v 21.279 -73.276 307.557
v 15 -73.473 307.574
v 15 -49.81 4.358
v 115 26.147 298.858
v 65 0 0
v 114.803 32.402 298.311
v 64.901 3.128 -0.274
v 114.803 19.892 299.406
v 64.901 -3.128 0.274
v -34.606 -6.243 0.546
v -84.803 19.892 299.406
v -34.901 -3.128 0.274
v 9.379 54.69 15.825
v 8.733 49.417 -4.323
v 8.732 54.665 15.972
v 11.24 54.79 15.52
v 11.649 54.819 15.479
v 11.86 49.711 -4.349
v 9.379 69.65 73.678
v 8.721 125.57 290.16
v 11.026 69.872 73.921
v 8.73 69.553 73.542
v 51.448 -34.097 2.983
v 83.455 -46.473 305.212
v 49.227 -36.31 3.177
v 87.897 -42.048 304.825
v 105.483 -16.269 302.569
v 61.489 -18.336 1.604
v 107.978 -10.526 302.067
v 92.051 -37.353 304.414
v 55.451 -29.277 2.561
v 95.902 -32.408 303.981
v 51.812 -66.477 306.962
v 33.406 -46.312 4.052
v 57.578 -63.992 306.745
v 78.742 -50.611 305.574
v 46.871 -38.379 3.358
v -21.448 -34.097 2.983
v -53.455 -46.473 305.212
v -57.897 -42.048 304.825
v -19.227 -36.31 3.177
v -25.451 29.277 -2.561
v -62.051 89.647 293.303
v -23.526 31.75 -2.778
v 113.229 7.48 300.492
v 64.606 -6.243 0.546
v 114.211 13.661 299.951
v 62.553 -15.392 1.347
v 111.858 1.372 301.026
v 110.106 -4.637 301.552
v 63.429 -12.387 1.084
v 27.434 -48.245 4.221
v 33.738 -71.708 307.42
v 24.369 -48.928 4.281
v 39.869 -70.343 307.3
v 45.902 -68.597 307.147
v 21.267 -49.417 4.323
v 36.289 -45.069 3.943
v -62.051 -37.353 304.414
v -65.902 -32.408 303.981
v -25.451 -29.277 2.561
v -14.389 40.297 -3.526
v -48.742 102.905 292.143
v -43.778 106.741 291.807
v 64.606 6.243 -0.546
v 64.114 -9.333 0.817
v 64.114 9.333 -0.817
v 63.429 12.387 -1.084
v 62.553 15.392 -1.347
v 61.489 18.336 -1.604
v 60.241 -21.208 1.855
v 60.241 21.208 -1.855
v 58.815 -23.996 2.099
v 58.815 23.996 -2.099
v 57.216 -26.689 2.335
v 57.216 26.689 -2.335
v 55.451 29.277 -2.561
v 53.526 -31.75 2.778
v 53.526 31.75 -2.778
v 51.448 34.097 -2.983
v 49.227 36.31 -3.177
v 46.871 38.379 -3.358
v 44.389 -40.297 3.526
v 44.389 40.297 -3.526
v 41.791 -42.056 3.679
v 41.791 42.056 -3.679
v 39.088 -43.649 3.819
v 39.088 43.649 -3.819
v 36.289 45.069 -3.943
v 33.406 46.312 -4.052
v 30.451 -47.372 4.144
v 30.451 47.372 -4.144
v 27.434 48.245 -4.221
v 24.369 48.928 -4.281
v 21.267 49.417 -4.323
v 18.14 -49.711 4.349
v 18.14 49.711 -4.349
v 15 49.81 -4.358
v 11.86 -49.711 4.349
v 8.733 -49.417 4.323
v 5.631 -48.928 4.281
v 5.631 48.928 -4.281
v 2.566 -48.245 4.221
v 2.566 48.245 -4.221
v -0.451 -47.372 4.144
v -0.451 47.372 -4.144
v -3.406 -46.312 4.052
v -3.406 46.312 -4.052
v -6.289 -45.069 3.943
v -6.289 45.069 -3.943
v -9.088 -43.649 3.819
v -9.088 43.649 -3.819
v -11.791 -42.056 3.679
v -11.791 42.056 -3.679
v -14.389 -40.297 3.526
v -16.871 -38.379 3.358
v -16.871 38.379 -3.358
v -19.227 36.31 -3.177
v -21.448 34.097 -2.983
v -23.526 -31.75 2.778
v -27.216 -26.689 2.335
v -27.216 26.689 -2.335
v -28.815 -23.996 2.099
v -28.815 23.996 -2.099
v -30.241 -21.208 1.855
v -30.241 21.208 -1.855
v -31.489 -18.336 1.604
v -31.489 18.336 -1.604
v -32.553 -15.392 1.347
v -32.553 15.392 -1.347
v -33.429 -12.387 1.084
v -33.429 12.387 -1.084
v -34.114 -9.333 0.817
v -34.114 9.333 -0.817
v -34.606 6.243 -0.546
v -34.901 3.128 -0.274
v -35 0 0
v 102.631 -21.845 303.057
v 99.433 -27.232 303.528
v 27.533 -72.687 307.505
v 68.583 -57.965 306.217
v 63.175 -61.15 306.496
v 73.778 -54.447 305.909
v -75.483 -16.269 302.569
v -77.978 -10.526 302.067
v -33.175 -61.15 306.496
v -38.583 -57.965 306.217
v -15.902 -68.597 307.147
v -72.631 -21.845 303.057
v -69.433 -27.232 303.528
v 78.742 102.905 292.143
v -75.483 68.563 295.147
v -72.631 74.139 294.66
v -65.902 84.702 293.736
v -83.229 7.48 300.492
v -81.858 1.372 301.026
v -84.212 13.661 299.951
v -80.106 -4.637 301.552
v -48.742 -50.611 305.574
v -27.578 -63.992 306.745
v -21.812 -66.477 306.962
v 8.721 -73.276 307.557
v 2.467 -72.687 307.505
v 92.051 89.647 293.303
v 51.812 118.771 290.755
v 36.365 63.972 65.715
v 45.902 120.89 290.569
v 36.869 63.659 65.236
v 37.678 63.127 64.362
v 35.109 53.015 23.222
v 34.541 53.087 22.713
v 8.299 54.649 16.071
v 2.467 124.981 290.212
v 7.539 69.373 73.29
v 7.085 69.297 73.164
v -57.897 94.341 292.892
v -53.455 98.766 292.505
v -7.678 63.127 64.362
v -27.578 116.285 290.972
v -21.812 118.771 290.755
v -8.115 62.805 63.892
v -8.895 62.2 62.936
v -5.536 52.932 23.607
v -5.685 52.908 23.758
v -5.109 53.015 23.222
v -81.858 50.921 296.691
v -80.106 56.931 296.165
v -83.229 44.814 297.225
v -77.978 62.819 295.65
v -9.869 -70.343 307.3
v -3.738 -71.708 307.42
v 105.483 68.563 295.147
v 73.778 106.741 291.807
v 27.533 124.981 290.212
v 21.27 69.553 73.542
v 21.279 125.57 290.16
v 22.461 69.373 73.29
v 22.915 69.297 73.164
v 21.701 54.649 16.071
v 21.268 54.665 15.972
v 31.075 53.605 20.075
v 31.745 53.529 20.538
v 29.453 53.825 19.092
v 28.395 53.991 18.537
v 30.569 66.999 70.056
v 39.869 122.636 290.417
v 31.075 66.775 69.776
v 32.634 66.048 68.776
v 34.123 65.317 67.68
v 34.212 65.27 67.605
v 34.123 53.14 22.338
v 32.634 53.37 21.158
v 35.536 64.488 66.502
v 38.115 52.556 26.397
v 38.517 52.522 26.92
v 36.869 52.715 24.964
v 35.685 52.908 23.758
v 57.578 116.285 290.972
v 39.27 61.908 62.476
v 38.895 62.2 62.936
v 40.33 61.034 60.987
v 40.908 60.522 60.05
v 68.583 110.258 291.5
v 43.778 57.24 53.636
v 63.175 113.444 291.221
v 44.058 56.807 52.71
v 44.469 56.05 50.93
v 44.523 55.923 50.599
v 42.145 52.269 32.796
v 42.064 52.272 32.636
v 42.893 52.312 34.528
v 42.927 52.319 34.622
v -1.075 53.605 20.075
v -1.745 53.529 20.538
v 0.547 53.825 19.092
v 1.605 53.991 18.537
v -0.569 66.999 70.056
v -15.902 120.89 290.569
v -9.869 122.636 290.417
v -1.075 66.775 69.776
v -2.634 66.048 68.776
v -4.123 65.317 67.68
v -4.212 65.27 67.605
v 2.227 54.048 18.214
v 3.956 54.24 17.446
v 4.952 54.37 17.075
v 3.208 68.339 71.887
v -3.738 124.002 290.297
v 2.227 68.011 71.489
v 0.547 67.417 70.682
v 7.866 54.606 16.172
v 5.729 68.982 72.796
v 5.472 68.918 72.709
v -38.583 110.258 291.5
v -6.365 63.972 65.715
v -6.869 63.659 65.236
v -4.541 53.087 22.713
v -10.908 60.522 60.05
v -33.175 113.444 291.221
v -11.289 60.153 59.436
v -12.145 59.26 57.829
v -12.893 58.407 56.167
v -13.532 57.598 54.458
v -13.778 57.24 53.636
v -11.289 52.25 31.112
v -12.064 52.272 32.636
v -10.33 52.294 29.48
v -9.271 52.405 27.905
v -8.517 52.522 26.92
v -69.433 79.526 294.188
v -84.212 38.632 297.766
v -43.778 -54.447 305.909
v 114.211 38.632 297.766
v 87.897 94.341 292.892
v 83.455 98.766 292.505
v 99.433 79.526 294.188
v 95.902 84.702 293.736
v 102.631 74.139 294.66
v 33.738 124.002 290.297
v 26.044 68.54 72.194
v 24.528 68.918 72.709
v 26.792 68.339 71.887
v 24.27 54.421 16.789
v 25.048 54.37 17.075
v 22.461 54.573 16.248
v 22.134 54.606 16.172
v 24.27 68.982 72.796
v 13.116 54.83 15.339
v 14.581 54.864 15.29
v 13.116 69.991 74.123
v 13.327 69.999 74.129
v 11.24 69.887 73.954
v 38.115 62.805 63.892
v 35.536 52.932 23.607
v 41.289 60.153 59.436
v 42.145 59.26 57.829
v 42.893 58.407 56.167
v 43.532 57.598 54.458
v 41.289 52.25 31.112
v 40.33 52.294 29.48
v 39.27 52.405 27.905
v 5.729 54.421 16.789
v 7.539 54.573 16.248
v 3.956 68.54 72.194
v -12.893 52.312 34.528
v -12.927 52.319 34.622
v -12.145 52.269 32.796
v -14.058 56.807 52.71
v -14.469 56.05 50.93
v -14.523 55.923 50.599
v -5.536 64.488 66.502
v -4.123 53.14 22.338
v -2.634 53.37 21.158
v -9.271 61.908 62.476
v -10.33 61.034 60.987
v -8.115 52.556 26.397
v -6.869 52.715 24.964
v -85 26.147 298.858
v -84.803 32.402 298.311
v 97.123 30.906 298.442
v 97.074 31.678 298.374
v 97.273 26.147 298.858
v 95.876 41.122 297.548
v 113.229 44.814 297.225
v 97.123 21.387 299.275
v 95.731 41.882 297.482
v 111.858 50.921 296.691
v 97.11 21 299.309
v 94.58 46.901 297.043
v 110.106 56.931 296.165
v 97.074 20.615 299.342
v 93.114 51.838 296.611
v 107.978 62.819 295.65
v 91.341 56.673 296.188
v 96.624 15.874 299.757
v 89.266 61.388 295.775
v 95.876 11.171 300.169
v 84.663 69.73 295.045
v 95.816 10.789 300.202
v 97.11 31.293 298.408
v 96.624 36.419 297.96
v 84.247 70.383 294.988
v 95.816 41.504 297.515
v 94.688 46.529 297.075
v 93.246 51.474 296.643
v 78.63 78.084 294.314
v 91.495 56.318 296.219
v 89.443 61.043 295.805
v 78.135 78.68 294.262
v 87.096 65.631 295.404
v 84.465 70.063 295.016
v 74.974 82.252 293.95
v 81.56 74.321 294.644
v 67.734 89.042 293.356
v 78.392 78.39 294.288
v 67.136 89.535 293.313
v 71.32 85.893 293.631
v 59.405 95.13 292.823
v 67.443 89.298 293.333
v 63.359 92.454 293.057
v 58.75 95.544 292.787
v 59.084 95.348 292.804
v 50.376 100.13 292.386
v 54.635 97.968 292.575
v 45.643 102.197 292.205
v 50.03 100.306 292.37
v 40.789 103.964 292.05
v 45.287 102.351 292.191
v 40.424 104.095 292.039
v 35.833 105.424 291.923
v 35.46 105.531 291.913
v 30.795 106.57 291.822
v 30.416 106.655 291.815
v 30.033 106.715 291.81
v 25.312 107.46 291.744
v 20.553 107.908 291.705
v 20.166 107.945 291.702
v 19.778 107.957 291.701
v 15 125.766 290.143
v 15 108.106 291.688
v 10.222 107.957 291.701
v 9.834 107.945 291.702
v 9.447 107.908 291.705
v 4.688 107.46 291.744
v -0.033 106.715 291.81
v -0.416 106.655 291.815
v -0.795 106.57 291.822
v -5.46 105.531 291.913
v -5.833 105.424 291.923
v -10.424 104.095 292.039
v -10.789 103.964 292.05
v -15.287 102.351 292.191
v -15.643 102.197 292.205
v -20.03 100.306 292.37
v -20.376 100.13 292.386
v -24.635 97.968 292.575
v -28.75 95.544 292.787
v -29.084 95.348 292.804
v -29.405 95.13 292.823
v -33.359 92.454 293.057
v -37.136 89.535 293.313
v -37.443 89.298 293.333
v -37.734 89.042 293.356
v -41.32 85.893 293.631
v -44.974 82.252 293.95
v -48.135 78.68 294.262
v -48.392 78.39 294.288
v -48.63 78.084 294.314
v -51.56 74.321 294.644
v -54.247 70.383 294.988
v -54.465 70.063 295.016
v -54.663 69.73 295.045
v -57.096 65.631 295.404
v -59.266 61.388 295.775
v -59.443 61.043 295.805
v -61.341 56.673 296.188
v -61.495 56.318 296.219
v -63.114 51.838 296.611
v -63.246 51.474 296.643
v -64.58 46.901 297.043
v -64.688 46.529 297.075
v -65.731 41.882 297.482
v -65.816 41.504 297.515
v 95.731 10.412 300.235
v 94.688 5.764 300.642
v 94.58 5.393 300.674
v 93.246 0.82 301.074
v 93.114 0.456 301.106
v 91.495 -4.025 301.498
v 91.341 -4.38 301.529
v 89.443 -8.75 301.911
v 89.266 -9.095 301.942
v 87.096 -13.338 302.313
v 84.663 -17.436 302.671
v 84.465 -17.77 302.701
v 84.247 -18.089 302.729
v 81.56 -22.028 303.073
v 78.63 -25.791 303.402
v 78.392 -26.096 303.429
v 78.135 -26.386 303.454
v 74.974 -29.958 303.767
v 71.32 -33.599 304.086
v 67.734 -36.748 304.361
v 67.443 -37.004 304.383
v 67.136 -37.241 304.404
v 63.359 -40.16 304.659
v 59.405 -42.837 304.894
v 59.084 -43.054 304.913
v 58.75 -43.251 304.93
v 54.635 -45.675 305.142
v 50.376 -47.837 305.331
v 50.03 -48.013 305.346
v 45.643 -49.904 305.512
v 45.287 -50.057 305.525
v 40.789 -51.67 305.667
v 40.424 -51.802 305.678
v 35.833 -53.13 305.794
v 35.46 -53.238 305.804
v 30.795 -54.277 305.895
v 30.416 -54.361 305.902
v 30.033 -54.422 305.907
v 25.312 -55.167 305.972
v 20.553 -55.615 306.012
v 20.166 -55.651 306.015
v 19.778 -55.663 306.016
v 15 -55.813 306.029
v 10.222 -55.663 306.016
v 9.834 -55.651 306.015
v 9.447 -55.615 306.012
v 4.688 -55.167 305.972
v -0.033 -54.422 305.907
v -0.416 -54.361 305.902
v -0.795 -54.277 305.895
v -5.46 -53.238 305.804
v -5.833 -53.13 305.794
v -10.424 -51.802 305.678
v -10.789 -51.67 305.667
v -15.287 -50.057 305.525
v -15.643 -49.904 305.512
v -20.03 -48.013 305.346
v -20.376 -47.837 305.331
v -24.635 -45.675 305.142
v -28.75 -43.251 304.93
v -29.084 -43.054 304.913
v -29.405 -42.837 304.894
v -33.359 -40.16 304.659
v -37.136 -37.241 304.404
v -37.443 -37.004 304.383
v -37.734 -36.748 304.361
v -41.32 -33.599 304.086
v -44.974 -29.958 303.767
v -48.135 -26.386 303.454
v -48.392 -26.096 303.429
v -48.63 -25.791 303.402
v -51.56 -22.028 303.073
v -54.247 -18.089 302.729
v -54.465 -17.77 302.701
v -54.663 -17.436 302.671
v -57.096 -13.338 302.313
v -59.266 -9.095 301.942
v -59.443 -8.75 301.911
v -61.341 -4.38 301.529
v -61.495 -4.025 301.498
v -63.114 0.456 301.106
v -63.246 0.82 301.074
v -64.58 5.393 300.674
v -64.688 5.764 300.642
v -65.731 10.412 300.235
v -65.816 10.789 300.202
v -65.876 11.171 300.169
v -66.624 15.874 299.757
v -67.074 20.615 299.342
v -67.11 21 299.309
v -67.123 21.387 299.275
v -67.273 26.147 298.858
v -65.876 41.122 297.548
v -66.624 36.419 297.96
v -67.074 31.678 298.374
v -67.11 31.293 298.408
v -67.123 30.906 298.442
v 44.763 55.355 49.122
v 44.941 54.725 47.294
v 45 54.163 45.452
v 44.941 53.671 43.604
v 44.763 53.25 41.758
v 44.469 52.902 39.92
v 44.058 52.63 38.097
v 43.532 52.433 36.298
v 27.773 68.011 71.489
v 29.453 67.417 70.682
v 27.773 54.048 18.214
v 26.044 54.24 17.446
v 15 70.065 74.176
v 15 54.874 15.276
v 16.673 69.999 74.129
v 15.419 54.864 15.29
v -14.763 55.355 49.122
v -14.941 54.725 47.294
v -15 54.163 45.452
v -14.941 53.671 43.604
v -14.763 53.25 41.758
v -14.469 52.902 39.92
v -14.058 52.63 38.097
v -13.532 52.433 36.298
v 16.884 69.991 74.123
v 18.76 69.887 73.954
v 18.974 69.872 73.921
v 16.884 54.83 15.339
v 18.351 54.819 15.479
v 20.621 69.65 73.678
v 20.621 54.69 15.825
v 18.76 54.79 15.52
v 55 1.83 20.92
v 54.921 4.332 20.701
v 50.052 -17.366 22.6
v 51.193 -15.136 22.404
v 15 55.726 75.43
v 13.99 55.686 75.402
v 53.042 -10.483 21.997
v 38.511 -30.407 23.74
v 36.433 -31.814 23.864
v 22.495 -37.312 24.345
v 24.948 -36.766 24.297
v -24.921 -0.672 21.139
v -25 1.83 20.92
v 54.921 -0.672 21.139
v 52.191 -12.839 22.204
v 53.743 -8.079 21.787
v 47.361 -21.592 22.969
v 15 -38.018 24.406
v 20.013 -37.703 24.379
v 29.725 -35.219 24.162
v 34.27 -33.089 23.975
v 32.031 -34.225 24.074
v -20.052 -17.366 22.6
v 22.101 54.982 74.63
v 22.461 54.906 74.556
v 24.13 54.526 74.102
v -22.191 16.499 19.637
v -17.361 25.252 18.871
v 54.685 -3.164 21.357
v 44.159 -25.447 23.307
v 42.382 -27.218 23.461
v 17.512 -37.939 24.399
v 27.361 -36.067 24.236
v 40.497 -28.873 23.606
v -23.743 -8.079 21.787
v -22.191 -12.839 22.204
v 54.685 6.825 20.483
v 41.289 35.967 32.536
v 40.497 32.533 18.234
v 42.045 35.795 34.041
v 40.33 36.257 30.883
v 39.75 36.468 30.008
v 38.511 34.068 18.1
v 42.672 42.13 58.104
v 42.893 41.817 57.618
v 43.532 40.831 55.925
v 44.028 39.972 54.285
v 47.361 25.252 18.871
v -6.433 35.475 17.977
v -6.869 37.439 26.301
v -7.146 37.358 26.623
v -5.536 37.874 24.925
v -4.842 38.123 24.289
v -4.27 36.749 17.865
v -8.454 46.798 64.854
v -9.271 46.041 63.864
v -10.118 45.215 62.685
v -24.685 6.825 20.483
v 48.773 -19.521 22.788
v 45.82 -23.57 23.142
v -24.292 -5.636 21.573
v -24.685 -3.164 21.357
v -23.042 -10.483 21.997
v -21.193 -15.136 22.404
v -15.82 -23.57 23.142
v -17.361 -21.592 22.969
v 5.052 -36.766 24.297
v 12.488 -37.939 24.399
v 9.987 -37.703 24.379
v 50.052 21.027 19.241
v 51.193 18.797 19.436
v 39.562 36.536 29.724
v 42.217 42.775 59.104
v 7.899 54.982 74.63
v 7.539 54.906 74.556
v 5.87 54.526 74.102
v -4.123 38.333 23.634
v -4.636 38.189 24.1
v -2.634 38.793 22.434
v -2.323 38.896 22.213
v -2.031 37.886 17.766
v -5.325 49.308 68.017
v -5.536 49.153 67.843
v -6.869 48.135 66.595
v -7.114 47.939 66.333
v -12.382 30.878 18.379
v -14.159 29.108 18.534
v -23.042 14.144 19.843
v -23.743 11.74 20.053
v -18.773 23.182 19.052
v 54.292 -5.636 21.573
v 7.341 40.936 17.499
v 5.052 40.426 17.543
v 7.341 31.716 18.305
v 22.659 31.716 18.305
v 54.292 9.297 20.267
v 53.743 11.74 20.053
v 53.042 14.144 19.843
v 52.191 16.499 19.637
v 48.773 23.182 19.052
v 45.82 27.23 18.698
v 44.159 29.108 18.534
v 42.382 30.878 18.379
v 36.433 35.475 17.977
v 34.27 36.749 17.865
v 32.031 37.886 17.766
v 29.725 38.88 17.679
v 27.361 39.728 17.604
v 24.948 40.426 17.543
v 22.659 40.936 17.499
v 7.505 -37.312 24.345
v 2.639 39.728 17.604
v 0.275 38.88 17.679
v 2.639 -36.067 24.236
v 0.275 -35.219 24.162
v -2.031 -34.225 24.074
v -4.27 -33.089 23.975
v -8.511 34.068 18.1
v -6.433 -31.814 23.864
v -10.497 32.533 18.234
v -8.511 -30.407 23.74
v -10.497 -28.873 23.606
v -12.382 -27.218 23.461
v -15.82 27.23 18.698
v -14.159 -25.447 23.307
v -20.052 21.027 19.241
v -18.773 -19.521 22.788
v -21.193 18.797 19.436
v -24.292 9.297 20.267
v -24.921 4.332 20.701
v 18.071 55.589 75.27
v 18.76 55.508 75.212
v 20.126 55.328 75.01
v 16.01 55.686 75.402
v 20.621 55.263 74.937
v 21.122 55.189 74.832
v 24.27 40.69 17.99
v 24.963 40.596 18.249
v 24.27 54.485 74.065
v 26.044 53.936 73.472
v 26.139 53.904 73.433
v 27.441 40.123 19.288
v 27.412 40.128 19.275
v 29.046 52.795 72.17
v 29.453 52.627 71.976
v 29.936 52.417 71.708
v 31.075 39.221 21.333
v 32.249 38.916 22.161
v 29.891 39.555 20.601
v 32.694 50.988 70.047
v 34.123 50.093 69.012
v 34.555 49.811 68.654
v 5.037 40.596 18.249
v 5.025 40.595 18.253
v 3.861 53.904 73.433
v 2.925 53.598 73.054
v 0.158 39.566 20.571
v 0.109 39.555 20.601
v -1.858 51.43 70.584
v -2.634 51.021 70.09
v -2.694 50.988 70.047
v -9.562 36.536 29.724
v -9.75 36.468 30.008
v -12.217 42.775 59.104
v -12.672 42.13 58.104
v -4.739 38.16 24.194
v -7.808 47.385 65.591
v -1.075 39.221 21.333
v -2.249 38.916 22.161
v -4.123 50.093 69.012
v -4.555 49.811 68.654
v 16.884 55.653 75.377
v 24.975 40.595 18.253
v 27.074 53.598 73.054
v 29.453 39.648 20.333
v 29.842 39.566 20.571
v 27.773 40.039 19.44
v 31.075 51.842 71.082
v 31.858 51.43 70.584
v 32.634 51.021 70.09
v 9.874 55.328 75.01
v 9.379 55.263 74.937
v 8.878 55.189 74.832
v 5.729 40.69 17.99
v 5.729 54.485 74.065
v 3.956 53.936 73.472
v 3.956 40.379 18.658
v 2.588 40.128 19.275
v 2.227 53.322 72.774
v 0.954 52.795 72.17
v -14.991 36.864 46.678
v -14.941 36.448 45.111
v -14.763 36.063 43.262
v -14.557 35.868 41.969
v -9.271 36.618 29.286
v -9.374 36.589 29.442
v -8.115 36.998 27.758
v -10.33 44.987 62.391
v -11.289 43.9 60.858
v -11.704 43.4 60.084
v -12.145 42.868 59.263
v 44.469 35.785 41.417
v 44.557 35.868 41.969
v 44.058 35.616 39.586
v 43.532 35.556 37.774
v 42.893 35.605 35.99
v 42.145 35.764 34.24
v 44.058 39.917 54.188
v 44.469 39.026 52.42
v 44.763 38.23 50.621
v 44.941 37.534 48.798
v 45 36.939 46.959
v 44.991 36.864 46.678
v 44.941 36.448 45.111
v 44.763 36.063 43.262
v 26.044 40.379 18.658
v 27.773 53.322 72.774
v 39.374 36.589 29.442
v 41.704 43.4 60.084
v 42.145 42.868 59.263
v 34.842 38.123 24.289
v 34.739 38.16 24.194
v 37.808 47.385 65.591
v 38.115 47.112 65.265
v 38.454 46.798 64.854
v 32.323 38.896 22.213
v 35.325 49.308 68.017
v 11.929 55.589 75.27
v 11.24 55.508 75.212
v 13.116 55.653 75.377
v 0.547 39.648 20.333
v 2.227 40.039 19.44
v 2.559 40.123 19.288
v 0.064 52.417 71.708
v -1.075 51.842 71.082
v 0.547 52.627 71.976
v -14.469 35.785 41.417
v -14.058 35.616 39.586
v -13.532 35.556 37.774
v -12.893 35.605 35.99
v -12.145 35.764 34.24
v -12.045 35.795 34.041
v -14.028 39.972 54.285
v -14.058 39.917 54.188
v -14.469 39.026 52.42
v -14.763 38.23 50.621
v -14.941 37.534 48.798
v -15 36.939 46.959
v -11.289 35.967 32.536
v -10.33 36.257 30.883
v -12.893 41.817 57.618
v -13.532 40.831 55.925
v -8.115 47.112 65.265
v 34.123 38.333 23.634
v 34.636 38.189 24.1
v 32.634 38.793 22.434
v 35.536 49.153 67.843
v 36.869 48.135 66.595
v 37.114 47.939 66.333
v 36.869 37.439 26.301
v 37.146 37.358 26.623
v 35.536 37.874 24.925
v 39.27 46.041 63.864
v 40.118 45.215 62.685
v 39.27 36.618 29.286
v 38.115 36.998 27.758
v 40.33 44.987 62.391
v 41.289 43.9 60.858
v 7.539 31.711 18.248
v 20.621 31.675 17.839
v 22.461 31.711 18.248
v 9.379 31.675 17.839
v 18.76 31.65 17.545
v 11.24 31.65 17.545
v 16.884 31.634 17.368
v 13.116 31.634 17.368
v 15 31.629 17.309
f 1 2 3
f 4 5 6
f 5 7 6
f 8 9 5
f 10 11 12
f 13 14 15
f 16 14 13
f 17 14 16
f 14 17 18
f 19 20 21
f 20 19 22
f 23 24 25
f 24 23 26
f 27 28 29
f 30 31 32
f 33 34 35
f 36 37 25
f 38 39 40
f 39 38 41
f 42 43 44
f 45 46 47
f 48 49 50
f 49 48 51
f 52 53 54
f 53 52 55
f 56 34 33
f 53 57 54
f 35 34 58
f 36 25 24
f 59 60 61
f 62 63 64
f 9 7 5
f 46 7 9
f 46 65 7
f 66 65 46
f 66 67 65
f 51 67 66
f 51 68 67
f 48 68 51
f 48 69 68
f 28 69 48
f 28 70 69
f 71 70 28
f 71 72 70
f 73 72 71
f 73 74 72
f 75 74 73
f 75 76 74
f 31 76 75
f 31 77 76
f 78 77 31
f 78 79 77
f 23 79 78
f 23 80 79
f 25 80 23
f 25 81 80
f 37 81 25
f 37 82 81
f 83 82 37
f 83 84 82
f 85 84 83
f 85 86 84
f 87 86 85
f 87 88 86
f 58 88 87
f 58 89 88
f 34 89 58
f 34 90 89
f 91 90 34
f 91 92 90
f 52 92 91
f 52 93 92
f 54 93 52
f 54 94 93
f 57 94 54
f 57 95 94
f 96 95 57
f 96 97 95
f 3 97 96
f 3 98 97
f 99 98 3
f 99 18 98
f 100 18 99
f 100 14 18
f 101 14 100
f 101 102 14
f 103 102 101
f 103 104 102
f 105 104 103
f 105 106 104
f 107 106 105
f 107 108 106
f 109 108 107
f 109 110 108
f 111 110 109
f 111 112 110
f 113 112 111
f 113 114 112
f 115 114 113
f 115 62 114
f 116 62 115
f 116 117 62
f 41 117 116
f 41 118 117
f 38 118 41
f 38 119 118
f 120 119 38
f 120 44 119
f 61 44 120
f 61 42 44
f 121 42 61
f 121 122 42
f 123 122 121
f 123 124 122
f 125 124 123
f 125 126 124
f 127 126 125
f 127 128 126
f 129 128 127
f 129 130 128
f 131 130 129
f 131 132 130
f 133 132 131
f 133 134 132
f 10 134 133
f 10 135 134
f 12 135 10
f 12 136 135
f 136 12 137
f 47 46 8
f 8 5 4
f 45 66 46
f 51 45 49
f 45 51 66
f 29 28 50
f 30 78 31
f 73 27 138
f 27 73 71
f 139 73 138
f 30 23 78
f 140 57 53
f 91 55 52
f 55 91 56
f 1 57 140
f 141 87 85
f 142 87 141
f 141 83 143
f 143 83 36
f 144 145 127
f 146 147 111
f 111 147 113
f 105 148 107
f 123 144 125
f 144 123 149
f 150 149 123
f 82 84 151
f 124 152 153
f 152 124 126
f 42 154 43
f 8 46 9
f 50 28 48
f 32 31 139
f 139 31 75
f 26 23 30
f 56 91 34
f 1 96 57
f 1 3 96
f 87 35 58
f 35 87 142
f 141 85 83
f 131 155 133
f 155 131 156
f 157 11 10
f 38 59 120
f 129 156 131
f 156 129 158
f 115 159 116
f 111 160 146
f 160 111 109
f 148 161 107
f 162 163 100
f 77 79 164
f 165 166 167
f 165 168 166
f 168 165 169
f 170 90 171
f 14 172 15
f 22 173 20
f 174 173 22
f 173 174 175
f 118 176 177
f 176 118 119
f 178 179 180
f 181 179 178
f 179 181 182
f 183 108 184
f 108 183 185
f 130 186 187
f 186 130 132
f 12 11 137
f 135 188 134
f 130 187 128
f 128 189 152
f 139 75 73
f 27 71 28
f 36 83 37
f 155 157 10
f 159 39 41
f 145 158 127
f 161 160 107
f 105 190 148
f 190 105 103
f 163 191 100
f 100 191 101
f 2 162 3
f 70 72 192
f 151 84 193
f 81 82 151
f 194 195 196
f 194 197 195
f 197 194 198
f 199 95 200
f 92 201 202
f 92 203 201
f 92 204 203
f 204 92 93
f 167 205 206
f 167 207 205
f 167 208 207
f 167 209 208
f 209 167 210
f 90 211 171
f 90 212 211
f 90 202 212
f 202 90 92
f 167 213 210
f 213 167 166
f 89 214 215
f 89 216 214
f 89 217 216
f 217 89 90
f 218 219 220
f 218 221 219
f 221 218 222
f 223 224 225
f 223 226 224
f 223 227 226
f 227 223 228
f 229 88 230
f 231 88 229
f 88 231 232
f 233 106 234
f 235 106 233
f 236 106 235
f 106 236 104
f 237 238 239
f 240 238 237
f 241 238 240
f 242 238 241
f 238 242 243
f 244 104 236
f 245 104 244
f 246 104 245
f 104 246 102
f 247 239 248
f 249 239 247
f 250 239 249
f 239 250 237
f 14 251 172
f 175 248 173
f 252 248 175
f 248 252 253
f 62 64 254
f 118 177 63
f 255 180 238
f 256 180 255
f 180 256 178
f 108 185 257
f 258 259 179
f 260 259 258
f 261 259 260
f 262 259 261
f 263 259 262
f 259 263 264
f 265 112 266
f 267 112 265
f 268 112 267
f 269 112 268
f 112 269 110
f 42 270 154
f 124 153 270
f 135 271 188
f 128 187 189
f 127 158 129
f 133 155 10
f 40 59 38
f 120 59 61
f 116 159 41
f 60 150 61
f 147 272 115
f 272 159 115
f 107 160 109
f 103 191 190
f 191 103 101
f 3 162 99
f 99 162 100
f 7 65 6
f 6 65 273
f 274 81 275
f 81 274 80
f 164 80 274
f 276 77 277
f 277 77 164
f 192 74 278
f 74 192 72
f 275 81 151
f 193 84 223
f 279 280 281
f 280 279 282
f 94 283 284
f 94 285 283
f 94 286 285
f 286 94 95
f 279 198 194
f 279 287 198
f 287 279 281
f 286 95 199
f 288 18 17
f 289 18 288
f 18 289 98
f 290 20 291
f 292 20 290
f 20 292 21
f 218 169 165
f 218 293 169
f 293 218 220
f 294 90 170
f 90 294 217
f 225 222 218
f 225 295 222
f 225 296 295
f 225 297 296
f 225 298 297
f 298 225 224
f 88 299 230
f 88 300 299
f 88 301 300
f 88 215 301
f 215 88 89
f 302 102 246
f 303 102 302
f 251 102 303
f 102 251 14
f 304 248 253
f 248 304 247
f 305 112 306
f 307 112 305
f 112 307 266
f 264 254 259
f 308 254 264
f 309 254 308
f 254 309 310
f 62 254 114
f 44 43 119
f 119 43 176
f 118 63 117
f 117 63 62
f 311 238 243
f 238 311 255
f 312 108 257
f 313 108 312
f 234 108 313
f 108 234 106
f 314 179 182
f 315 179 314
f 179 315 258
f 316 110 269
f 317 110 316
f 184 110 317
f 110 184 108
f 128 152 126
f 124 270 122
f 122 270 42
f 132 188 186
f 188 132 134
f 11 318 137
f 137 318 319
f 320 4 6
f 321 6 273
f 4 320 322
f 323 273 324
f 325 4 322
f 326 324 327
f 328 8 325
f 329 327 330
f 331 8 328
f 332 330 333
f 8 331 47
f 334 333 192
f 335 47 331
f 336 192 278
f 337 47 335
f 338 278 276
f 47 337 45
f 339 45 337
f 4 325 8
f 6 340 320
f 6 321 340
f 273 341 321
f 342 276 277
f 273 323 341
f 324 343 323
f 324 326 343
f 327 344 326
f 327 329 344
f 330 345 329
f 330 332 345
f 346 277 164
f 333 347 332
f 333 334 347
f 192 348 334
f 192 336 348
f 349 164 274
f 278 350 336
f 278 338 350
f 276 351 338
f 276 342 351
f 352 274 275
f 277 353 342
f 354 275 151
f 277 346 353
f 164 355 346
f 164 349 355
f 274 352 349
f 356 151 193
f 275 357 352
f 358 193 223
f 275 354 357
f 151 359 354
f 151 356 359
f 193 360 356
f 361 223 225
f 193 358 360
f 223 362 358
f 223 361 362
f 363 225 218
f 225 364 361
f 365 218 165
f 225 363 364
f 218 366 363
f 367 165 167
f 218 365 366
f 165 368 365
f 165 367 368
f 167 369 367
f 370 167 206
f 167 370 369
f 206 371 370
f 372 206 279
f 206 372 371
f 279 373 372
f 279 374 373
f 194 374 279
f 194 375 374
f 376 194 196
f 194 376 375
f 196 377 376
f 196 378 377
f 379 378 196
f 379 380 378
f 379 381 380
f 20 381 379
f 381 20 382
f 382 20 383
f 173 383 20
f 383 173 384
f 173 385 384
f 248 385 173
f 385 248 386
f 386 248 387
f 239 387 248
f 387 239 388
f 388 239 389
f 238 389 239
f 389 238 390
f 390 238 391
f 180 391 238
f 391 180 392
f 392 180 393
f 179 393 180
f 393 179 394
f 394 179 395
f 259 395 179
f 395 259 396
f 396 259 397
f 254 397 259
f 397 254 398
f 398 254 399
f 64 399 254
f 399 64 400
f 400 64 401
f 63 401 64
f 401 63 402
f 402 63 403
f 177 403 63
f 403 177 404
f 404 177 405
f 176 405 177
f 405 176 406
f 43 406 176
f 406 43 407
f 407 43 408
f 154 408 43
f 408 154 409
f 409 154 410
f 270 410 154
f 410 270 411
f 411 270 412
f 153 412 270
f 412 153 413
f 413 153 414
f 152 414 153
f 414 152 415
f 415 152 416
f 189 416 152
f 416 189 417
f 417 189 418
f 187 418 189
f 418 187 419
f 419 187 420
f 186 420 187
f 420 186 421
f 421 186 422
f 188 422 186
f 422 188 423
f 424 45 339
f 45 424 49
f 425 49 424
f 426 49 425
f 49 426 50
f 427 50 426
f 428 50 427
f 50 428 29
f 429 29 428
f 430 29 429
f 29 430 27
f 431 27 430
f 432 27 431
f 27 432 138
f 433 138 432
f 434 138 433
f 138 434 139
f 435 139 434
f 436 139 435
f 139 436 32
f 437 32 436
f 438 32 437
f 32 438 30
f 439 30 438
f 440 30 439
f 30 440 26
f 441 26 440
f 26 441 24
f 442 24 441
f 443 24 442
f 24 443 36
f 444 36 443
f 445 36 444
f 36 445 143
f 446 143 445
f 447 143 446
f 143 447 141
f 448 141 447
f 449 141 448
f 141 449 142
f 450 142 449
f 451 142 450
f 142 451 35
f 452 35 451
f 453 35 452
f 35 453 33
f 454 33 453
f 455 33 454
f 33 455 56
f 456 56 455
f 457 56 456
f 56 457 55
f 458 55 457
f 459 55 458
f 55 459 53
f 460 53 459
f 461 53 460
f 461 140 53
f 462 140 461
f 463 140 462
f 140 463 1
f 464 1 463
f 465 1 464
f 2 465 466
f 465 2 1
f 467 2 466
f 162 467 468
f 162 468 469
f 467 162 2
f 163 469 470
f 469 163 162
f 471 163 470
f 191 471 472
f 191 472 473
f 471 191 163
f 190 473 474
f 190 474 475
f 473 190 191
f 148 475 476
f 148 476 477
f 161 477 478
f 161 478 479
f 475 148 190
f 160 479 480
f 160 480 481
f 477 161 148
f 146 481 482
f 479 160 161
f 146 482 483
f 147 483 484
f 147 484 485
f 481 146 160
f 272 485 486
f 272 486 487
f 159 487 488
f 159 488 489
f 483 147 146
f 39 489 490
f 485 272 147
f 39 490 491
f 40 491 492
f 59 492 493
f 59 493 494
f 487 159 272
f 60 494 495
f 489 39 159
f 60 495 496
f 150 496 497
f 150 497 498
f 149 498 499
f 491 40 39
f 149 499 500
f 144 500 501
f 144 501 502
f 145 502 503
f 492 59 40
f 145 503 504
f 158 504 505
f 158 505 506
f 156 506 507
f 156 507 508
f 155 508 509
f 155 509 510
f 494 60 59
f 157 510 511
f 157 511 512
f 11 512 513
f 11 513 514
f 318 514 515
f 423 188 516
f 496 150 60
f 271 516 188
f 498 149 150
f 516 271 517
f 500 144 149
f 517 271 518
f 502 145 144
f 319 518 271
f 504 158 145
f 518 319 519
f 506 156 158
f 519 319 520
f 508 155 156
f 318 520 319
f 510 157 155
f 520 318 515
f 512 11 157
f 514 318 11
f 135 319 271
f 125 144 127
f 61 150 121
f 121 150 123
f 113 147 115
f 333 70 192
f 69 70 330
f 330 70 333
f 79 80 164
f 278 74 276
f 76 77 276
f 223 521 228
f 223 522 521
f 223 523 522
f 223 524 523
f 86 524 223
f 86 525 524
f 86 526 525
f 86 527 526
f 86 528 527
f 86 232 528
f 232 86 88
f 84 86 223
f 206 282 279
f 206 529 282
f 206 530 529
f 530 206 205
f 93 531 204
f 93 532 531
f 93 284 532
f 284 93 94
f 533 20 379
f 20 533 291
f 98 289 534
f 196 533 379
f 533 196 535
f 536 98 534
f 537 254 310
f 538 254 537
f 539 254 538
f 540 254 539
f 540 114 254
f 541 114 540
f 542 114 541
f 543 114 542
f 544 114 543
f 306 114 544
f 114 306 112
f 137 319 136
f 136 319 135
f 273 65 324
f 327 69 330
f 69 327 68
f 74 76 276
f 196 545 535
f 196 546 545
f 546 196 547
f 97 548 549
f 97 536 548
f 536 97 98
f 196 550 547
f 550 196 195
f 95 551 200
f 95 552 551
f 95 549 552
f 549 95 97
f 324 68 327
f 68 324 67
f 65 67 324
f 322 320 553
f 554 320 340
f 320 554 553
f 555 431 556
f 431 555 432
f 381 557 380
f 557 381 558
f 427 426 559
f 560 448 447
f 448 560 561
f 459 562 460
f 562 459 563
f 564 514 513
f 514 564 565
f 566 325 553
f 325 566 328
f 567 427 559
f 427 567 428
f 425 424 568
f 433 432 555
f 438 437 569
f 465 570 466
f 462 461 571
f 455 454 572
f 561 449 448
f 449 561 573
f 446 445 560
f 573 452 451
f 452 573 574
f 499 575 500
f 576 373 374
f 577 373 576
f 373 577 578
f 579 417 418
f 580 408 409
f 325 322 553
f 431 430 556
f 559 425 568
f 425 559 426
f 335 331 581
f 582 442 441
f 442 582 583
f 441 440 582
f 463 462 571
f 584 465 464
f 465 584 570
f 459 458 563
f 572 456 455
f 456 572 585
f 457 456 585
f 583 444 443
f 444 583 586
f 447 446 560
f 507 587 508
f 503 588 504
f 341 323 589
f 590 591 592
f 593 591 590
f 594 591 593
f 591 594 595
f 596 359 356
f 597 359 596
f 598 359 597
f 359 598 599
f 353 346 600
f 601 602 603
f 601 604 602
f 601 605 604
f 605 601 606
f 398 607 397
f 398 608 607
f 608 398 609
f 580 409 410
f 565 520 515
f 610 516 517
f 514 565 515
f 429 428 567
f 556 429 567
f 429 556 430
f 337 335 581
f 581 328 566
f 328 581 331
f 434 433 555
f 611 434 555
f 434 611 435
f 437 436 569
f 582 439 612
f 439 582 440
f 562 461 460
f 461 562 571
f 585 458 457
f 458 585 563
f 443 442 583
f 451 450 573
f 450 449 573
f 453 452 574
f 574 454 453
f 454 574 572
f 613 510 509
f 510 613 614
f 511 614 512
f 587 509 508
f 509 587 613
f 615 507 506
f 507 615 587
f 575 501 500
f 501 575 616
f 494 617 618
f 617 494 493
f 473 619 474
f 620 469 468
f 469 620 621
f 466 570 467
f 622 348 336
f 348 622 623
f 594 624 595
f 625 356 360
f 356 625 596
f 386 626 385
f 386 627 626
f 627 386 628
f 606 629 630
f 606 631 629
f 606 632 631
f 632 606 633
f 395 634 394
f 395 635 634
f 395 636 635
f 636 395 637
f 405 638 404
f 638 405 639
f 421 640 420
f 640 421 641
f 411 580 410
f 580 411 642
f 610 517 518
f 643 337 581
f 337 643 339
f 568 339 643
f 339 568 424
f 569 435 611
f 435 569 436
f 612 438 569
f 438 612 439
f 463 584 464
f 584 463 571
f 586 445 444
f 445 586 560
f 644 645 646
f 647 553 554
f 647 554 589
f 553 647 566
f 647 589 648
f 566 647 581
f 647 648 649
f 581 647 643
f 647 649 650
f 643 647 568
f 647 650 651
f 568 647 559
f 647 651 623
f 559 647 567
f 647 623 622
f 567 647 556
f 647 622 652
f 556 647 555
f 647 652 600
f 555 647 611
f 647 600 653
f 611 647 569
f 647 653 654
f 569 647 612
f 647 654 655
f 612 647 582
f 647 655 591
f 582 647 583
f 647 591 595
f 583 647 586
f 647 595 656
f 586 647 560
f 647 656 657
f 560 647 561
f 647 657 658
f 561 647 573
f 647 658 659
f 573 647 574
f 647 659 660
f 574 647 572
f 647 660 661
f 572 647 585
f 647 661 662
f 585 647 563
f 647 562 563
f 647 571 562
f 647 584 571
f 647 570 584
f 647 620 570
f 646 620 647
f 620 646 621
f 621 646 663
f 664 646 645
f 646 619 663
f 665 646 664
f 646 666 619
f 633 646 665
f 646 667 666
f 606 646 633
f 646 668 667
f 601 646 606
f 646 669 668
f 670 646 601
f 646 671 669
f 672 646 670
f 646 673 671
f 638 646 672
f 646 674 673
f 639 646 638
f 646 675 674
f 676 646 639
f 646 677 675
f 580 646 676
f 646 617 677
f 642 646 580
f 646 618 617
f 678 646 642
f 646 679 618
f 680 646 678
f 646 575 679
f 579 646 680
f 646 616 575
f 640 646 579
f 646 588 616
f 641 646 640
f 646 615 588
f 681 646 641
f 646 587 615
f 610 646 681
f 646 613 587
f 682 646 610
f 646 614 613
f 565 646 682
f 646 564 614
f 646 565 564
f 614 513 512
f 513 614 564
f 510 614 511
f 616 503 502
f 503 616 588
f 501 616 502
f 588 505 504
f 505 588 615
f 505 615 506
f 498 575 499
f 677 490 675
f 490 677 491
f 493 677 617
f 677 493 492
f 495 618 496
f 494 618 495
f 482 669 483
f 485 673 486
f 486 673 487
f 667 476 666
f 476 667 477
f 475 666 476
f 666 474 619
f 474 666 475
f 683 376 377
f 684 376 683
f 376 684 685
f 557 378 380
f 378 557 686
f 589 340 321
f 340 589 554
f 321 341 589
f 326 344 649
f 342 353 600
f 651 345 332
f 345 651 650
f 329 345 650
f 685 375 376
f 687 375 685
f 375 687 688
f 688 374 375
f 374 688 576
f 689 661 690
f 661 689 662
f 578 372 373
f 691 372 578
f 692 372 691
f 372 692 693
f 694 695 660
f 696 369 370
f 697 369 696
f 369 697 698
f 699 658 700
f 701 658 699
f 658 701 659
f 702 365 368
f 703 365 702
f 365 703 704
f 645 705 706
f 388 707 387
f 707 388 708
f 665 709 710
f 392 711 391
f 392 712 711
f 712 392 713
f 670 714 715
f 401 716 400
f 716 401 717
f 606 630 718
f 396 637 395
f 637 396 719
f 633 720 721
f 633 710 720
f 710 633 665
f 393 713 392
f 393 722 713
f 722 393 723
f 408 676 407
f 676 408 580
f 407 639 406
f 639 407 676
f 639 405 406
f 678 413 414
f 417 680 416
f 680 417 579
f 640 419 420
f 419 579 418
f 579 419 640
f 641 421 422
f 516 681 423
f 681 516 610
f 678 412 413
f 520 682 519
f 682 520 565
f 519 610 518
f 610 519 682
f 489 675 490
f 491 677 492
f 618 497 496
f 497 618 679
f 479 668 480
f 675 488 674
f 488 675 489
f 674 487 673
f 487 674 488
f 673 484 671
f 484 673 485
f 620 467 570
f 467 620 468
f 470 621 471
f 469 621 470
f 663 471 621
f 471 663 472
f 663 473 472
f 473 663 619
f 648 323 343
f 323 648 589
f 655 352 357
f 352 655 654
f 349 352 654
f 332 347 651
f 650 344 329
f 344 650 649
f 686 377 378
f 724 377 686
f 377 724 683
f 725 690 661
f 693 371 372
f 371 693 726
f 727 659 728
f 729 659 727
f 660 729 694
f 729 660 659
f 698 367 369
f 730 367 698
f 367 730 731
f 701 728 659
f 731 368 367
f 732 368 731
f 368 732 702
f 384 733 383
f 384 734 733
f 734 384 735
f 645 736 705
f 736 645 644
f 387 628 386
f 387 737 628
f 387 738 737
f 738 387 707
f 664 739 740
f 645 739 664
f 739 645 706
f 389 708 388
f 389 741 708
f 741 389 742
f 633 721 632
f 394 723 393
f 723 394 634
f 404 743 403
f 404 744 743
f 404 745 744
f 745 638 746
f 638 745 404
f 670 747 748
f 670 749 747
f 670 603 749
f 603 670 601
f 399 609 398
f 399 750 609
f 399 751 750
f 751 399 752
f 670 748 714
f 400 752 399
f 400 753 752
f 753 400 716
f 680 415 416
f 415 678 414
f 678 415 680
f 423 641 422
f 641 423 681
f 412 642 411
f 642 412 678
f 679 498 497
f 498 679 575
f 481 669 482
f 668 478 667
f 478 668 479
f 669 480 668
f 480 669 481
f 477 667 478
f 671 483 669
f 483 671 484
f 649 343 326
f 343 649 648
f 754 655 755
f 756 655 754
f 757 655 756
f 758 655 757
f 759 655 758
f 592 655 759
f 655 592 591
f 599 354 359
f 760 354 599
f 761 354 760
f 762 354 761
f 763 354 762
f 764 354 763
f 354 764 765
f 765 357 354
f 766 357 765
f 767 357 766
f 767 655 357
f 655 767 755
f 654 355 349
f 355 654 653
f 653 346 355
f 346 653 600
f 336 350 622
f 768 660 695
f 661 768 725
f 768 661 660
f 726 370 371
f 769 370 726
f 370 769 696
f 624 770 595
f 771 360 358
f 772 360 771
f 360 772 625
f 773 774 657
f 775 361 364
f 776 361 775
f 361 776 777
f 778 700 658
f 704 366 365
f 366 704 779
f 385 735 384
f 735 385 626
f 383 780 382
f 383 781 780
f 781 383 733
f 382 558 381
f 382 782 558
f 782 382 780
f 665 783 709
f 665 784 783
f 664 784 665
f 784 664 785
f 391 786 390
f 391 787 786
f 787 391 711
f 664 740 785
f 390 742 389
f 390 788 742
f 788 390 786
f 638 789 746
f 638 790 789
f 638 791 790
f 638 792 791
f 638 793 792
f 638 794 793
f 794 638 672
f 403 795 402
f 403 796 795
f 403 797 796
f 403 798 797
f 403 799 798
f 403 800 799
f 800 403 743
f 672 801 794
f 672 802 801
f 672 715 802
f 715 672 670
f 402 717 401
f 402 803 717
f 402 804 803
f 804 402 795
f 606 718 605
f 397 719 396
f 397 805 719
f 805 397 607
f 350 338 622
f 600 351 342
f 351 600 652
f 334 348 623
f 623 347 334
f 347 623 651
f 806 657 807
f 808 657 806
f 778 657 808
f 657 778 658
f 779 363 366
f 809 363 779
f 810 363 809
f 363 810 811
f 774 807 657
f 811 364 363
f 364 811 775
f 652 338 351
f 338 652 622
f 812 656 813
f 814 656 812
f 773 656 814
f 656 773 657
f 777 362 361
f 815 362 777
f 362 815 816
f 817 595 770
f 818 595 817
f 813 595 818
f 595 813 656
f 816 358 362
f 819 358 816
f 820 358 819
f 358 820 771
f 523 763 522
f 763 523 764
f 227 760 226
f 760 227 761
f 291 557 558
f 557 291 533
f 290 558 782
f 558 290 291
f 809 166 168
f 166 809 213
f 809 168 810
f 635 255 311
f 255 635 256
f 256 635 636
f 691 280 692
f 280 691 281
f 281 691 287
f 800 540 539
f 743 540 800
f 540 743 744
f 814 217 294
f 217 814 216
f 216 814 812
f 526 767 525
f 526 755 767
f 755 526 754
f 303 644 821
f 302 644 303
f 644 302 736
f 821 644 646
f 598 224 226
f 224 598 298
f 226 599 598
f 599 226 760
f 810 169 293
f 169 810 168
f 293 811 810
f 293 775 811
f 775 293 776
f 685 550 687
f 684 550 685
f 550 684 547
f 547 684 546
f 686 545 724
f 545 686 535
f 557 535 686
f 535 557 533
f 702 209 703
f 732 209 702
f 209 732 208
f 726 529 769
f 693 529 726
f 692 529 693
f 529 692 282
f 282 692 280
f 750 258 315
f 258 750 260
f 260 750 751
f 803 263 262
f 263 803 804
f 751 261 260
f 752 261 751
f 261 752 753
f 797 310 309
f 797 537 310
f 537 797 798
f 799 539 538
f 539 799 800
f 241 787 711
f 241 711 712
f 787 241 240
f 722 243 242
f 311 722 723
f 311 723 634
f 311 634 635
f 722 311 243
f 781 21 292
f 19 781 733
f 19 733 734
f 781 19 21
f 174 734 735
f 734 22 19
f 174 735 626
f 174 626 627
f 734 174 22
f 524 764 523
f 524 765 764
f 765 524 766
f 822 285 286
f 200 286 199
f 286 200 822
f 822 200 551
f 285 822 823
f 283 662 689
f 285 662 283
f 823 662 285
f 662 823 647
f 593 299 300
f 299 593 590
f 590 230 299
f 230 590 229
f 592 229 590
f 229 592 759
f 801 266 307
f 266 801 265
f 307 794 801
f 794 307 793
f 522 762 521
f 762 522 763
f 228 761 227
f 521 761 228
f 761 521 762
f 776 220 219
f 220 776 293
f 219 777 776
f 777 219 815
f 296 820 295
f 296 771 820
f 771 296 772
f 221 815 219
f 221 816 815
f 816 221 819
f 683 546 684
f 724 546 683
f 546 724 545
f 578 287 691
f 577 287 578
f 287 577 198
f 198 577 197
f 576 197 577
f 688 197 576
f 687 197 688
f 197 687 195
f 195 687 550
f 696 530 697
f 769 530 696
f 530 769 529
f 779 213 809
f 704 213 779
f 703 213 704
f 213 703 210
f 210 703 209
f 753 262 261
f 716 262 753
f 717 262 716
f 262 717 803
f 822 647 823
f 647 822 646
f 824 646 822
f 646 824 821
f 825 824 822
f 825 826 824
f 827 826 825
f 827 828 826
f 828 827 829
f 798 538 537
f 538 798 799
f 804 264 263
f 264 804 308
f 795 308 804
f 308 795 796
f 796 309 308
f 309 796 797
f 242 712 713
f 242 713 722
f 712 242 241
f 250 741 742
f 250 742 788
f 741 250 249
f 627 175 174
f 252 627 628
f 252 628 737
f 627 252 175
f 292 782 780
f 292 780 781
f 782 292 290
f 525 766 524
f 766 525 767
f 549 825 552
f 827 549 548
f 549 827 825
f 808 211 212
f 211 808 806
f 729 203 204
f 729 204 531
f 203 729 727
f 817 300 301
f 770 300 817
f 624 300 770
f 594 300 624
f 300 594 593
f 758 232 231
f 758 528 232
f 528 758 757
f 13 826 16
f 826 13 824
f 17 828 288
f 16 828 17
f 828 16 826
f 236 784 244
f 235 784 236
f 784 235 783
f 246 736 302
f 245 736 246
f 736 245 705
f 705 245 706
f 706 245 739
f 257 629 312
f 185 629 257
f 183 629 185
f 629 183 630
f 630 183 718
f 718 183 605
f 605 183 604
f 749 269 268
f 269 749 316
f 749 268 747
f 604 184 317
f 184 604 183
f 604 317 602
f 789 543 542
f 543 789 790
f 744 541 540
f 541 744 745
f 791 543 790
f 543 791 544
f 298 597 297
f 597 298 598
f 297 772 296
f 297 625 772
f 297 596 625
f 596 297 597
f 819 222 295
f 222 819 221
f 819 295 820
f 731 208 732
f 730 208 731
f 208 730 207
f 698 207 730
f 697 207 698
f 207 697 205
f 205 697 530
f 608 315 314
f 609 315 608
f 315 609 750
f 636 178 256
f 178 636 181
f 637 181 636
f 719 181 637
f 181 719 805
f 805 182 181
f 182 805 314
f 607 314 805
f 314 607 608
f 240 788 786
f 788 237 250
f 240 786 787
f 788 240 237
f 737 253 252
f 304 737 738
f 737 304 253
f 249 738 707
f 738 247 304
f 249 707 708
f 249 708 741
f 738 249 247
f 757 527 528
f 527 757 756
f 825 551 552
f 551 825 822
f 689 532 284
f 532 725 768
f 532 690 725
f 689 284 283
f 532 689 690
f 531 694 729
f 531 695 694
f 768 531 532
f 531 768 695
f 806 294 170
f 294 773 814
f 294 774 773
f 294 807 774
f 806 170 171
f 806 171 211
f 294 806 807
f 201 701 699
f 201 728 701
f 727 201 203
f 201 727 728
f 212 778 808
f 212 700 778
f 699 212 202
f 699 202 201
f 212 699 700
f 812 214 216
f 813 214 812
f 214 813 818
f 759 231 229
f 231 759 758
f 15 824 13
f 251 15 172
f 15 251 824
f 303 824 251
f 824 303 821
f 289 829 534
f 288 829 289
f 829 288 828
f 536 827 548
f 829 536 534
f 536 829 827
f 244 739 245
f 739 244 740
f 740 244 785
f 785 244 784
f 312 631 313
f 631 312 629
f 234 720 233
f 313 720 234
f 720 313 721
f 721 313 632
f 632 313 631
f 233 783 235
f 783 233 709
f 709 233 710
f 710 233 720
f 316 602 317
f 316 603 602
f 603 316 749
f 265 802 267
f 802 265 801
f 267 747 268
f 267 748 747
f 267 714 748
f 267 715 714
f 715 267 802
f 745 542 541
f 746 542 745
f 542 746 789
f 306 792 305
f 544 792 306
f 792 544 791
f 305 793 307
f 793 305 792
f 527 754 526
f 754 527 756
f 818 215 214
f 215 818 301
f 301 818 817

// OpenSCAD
$fn = 100;
translate([15, 0, 0])rotate([-5, 0, 0]) difference(){
cylinder(h = 300, r1 = 50, r2 = 100);
translate([0, 0 , 21])cylinder(h = 330, r1 = 40, r2 = 90);
translate([0, 70, 50]) rotate([90, 0, 0]) cylinder(h = 40, r = 30);
}
